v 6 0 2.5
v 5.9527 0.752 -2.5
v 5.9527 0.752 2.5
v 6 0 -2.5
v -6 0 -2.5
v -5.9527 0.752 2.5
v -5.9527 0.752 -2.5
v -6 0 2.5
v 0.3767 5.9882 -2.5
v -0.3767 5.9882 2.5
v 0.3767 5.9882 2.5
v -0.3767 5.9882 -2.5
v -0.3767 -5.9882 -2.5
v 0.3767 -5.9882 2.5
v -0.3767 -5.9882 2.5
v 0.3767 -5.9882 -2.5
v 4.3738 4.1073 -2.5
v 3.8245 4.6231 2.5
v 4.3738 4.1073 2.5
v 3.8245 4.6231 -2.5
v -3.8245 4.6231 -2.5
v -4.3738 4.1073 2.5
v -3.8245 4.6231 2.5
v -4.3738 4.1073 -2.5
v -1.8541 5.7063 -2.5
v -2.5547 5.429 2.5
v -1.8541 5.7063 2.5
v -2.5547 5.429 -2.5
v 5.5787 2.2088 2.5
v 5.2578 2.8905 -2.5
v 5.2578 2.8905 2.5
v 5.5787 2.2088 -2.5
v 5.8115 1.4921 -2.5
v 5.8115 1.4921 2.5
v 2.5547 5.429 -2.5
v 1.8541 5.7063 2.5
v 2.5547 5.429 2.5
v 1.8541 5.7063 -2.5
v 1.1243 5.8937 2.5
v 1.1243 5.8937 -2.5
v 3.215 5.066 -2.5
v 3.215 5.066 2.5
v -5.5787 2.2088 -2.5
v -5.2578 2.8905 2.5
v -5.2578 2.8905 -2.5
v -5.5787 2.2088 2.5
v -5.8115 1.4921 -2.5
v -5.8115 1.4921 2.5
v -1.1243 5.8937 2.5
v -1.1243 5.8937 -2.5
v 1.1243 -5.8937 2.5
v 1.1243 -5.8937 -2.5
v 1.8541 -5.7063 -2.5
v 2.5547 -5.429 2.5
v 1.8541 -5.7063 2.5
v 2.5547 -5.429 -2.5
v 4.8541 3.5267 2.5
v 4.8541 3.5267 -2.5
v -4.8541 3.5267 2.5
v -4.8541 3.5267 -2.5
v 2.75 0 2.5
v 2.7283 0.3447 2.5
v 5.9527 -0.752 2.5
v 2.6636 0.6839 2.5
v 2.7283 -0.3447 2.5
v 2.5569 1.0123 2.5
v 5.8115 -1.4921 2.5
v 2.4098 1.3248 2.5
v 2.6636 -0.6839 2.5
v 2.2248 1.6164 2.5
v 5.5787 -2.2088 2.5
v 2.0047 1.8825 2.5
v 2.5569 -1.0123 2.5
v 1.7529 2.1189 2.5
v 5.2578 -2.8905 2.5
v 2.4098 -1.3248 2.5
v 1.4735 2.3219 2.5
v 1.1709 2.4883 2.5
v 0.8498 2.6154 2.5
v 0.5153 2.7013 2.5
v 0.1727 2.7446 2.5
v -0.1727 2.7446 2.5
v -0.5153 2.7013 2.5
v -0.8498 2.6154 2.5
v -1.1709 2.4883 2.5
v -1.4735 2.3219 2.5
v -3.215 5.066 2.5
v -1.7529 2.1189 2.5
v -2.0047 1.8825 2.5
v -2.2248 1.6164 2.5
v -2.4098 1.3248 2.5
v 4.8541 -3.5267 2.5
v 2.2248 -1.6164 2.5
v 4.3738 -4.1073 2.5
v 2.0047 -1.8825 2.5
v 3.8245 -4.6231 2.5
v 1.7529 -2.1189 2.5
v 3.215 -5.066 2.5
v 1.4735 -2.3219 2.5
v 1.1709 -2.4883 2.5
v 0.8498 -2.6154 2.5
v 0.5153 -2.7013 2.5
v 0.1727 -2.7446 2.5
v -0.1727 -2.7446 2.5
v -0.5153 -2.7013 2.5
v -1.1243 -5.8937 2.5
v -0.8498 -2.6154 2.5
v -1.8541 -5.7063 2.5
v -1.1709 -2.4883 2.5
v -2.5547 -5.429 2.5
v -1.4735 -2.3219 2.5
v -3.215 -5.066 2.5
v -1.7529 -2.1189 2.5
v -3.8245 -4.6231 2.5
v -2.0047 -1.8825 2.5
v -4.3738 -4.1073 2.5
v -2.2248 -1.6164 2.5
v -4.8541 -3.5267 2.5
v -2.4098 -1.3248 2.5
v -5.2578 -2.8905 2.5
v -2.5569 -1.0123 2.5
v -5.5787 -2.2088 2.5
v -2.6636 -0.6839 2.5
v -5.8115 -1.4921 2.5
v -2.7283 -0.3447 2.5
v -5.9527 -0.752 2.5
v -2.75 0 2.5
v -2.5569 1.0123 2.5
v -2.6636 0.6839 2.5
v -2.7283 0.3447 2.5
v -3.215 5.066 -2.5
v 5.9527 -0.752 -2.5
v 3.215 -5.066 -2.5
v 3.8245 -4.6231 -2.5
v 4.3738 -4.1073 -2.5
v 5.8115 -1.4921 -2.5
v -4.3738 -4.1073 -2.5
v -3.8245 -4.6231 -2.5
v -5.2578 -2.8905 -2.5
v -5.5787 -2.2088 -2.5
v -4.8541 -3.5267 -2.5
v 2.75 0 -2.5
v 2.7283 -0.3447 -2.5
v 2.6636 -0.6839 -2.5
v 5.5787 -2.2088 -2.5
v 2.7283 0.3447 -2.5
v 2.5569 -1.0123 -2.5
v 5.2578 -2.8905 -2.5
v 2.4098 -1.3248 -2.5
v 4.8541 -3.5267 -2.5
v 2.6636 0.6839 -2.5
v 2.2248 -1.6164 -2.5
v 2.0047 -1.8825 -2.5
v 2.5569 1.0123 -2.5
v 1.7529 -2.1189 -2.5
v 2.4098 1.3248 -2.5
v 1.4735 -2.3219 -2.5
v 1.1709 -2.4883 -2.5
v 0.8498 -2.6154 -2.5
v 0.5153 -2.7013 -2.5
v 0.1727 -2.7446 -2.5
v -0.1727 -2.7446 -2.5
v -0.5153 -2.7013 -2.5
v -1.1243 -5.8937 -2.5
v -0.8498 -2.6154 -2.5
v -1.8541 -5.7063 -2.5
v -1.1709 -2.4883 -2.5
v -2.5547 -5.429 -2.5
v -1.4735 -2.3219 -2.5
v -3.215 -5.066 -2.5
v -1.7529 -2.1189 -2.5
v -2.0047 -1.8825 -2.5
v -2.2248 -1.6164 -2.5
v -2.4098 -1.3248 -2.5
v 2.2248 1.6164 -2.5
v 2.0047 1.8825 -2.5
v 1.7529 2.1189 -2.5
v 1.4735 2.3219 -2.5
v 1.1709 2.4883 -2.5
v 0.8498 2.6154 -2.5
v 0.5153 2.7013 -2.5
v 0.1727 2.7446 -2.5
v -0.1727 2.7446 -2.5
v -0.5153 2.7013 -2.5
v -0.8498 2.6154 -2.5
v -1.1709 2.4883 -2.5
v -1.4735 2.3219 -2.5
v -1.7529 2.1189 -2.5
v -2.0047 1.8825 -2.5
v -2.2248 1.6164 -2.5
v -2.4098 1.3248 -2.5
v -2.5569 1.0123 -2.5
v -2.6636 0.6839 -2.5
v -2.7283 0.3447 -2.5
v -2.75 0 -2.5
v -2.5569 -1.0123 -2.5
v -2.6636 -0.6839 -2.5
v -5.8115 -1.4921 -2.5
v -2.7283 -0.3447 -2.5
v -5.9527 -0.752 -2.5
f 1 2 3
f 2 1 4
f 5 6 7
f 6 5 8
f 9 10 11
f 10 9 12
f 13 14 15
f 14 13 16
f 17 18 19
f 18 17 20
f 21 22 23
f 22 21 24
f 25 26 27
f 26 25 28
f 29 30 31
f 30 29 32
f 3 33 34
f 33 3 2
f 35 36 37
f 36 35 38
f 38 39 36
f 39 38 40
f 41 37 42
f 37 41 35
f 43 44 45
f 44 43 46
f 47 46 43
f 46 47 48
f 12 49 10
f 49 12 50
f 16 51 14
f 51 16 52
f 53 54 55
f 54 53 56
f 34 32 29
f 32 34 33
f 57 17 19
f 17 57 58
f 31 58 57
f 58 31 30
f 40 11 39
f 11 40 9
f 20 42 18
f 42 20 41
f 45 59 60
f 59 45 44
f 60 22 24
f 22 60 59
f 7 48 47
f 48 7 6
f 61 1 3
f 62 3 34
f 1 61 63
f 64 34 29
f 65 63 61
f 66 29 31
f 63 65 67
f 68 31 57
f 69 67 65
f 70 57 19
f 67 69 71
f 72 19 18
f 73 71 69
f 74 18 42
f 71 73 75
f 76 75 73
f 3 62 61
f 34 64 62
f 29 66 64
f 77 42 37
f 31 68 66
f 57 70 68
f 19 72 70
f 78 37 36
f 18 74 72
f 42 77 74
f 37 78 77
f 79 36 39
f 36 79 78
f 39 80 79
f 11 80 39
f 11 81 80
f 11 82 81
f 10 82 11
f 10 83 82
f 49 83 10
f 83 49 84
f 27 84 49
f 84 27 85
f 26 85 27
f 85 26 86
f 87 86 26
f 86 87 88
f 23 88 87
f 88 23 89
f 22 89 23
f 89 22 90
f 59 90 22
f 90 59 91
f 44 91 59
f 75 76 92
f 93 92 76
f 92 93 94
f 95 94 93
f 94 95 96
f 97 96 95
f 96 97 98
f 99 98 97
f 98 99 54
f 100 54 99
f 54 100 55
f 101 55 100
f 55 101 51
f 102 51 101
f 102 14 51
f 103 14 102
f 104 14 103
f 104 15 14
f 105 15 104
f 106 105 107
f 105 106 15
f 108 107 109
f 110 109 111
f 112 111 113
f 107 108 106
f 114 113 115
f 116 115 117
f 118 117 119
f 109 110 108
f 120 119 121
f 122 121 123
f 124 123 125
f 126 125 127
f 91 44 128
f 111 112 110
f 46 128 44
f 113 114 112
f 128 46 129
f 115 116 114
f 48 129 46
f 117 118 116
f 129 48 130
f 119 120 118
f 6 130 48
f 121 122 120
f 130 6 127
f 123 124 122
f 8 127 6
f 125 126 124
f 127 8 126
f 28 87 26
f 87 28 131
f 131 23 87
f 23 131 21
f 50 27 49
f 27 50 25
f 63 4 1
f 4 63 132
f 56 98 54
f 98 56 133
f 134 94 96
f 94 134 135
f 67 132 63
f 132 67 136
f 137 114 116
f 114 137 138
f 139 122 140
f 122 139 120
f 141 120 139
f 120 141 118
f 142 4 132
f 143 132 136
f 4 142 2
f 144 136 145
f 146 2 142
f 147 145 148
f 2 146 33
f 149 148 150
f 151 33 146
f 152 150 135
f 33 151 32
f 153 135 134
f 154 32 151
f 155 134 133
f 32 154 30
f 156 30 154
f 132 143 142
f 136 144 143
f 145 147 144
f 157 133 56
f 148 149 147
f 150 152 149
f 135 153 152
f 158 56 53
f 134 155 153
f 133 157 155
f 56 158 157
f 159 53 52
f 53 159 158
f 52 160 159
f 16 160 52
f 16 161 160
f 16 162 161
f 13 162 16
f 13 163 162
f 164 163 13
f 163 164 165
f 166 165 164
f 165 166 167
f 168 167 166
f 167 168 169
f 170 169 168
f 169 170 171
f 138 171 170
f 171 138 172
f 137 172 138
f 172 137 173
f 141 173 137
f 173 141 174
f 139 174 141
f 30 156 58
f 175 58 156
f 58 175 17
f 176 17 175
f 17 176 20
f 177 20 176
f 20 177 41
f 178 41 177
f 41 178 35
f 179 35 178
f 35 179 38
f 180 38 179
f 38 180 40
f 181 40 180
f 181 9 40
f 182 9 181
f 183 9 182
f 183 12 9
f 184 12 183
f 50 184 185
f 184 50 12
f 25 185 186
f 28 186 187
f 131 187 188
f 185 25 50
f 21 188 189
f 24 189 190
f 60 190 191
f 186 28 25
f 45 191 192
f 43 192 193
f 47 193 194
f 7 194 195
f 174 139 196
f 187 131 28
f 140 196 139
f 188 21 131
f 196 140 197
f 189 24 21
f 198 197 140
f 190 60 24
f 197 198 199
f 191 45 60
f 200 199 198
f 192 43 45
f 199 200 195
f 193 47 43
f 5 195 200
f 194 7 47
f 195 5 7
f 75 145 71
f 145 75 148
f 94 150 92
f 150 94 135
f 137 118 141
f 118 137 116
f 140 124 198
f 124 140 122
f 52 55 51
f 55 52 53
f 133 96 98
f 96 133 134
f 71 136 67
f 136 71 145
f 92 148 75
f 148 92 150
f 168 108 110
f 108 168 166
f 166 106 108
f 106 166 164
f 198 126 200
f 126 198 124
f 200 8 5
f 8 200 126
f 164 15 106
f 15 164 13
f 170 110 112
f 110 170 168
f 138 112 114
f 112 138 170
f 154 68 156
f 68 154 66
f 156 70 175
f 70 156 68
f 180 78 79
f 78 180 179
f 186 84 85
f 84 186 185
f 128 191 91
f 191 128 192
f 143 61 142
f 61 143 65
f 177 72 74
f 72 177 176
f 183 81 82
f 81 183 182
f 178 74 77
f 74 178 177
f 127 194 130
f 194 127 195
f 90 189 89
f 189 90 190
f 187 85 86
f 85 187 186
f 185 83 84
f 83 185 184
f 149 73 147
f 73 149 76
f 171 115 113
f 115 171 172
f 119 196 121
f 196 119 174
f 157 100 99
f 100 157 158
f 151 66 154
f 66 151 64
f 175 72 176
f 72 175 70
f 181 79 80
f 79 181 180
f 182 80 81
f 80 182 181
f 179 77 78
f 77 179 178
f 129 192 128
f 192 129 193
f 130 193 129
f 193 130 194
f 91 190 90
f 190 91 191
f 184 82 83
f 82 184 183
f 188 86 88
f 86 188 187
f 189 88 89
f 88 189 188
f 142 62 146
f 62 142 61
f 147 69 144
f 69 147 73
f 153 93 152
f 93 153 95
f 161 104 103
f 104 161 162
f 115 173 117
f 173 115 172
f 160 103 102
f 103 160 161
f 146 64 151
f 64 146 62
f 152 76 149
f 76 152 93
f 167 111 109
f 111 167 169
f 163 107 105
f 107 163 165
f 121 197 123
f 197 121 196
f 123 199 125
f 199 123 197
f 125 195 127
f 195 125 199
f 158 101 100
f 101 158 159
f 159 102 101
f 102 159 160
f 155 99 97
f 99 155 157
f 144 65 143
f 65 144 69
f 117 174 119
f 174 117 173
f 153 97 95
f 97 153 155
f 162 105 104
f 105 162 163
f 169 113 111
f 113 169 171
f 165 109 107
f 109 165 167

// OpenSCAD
$fn = 50;


difference() {
	union() {
		translate(v = [0, 0, -2.5000000000]) {
			cylinder(h = 5, r = 6.0000000000);
		}
	}
	union() {
		translate(v = [0, 0, -100.0000000000]) {
			cylinder(h = 200, r = 2.7500000000);
		}
	}
}
